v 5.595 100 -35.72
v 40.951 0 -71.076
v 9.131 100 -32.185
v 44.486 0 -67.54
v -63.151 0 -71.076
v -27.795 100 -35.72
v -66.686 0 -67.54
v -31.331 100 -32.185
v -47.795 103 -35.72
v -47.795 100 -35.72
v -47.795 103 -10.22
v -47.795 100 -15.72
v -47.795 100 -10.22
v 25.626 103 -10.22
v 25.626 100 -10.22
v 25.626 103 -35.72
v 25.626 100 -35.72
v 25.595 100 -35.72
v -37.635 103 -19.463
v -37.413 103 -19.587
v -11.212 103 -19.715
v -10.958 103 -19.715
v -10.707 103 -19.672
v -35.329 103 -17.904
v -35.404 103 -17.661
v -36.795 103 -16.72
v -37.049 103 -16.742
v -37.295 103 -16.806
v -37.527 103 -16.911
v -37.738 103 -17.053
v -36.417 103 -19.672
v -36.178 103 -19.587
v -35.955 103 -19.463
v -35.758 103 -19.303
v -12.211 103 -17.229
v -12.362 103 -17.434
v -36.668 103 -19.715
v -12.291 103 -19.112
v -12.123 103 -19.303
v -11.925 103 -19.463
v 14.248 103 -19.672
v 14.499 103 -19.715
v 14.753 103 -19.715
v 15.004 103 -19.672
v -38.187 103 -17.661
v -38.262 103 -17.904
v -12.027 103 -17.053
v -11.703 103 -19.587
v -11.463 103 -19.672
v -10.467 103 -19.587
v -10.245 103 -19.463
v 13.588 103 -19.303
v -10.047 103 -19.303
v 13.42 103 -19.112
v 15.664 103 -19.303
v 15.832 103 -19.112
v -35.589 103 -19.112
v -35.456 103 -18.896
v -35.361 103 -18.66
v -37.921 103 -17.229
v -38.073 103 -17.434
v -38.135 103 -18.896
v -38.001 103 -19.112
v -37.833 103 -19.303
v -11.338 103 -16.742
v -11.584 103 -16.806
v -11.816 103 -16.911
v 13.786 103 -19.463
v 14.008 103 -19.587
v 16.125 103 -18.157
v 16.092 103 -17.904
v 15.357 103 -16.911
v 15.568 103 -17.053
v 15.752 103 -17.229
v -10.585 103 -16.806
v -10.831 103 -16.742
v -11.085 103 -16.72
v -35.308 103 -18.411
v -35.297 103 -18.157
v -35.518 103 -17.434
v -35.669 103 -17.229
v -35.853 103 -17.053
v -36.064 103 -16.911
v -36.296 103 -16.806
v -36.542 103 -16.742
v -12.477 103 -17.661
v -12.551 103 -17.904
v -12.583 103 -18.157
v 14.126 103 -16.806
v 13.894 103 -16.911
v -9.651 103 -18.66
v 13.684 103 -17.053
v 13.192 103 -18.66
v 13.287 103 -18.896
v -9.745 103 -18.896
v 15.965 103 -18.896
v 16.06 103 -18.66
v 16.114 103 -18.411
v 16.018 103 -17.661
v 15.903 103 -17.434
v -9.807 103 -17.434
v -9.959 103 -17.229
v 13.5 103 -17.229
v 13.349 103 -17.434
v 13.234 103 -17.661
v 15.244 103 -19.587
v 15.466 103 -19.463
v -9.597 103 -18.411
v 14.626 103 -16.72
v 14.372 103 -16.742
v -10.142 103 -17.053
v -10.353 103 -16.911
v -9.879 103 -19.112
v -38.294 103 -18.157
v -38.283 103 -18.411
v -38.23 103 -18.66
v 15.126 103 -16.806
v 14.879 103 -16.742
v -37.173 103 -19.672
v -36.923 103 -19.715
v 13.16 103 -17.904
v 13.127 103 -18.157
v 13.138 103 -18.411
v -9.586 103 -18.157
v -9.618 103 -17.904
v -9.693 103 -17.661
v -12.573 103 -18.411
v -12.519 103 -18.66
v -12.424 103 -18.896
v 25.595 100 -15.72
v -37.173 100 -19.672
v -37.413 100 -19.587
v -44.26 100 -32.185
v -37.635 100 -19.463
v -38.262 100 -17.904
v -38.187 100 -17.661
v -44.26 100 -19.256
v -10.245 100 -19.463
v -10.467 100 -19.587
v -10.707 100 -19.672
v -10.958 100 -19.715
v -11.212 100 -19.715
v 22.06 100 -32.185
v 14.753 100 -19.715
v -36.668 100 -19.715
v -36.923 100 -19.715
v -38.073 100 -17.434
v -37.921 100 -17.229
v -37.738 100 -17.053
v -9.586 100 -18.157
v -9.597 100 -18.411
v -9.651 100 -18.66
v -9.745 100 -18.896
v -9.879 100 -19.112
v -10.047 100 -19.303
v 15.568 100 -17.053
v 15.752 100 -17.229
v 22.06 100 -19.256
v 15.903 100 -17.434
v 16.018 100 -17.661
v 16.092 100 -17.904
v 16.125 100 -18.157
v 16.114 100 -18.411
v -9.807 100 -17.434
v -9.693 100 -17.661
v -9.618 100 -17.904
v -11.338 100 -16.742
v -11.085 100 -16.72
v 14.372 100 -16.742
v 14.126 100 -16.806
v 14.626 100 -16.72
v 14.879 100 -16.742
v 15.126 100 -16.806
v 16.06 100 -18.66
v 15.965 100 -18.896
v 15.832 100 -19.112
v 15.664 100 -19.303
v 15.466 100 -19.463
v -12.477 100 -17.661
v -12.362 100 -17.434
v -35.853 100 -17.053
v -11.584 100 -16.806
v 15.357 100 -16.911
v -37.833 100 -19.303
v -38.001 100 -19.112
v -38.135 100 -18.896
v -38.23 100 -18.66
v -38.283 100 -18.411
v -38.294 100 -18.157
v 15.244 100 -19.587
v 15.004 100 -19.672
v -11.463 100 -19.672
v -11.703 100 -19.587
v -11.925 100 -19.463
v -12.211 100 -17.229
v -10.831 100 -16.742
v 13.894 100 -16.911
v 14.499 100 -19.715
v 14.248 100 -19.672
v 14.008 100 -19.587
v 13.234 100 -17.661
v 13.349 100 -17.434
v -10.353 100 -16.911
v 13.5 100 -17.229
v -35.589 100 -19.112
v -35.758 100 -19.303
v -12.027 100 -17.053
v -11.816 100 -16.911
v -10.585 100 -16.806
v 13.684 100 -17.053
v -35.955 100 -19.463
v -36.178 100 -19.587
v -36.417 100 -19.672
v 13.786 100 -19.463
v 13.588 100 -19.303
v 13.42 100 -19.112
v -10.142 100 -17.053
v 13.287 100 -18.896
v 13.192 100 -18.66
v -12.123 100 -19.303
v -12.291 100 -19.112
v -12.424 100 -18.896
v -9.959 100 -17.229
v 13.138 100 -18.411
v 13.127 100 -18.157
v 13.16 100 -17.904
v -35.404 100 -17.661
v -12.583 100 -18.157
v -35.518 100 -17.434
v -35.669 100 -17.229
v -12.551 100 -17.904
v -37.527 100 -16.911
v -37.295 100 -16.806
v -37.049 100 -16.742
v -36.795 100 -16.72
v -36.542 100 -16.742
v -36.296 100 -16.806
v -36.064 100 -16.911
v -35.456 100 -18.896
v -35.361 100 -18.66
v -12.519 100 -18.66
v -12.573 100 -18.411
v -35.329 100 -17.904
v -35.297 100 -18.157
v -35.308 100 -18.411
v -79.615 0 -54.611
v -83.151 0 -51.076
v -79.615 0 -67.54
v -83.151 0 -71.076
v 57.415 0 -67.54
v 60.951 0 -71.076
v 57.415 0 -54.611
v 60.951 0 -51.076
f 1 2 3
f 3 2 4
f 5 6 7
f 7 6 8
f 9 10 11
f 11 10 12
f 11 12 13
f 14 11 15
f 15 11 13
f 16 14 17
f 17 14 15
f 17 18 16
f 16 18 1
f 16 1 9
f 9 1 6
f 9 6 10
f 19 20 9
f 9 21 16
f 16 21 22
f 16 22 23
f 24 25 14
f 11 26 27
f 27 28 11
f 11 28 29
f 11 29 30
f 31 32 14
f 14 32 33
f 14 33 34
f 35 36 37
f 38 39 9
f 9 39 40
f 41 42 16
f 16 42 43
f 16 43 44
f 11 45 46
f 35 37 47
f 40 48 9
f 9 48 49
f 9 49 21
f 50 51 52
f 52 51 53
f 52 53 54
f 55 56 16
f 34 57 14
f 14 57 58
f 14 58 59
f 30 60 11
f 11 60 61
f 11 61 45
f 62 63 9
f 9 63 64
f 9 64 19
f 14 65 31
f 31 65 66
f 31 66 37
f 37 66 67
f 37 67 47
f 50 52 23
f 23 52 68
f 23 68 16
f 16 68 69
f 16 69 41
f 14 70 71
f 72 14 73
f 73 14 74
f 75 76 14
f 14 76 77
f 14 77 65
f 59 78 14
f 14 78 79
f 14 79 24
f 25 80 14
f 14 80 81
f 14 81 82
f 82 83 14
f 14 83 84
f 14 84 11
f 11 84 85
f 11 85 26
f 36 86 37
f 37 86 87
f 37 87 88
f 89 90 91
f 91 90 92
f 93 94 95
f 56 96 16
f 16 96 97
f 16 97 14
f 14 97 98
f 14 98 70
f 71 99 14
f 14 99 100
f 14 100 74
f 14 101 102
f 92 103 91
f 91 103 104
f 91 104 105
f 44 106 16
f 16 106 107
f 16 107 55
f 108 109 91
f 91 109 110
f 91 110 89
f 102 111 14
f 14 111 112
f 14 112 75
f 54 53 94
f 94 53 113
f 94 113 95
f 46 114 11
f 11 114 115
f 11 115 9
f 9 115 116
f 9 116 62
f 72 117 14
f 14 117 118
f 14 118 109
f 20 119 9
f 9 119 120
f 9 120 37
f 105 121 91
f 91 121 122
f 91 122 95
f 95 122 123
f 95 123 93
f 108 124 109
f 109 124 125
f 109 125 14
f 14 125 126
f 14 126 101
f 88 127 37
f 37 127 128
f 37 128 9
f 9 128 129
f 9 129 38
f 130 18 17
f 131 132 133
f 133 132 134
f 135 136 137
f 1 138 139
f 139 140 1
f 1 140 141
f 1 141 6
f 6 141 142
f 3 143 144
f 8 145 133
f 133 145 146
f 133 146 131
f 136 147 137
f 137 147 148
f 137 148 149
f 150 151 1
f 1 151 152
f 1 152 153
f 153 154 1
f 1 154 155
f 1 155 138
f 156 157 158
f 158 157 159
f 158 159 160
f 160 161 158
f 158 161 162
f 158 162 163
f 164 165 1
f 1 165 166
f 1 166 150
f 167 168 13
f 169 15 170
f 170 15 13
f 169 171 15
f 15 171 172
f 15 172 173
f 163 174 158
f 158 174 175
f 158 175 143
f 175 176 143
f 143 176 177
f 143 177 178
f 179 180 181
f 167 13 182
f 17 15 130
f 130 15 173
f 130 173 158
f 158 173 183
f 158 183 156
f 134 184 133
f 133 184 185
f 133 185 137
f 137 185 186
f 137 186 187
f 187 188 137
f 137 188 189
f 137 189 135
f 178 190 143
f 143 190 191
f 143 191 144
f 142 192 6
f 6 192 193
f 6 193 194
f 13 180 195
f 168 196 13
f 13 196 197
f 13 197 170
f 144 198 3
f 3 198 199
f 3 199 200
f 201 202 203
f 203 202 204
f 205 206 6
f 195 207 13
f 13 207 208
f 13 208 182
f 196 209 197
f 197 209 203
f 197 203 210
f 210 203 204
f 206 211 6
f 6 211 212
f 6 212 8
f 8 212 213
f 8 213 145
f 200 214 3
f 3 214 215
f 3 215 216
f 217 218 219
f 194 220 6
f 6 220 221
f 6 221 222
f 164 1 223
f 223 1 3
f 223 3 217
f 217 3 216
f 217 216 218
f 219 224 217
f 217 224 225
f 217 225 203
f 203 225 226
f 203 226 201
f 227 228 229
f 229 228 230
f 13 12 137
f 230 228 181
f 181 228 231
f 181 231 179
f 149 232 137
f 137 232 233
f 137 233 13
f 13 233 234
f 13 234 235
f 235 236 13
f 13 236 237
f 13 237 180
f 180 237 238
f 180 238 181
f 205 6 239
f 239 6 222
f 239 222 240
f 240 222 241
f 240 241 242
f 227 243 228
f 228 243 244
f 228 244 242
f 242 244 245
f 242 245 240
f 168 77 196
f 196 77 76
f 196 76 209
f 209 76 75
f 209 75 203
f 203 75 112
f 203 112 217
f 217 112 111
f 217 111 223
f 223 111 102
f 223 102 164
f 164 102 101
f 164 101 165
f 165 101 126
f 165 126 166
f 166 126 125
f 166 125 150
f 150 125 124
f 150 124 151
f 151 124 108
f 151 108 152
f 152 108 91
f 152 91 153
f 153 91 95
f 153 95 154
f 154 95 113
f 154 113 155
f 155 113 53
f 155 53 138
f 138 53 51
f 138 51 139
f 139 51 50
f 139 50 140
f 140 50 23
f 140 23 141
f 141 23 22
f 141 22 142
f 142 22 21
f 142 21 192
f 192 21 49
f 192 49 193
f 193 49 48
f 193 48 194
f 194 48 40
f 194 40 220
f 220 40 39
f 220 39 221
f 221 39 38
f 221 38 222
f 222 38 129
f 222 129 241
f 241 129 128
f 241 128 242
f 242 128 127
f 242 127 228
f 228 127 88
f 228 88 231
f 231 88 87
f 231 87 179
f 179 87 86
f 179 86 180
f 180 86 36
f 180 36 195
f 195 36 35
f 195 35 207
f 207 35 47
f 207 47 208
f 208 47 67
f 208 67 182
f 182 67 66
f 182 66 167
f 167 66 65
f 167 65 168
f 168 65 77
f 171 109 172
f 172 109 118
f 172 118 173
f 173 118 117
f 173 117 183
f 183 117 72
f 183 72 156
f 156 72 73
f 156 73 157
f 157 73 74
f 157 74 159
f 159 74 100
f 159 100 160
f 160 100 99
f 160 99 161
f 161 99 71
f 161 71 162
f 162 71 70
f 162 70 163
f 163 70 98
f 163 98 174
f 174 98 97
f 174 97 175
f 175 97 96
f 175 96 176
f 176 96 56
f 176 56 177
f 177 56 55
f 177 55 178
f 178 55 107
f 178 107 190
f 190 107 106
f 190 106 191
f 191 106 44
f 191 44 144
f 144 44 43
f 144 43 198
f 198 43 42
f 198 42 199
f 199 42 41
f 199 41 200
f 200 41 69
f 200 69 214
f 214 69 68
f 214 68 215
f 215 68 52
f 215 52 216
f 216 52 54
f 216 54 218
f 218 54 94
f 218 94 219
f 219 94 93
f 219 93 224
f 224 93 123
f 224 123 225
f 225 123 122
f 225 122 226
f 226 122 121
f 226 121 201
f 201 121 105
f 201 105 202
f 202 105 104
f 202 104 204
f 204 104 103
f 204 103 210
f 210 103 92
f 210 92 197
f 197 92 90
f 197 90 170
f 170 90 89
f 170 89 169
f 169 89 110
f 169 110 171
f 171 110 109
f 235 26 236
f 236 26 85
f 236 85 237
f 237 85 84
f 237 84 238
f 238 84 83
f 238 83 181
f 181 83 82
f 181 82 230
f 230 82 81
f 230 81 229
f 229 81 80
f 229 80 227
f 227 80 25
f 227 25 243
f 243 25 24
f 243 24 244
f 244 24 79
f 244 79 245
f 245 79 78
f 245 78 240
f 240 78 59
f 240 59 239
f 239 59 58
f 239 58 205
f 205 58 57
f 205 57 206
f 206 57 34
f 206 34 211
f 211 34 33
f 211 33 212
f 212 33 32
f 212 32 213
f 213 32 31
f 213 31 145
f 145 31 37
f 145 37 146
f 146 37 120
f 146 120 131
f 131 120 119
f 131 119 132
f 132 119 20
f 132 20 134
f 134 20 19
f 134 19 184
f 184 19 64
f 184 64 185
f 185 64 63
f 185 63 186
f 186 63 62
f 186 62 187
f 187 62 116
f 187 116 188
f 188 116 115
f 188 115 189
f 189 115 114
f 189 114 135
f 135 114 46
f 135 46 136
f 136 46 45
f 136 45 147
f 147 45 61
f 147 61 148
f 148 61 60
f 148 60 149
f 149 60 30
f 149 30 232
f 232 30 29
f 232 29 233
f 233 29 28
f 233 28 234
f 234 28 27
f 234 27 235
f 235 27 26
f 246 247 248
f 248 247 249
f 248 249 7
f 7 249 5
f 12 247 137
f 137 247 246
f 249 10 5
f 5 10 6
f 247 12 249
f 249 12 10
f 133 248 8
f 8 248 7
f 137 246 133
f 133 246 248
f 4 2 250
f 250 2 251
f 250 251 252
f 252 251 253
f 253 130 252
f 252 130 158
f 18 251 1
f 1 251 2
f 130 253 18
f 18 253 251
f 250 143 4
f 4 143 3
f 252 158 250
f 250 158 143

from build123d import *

# Parameters (mm, degrees)
SKETCH_8_W          = 73.42135624
SKETCH_8_H          = 25.5
EXTRUDE_3_DEPTH     = 3
SKETCH_9_R          = 1.5
CUT_EXTRUDE_2_DEPTH = 3


with BuildPart() as part:
    # 草图8 → 凸台-拉伸3 (new body)
    with BuildSketch(Plane(origin=(0, 100, 0), x_dir=(1, 0, 0), z_dir=(0, 1, 0))):
        with Locations((-11.084772404, 22.970398927)):
            Rectangle(SKETCH_8_W, SKETCH_8_H)
    extrude(amount=EXTRUDE_3_DEPTH)

    # 草图9 → 切除-拉伸2 (cut)
    with BuildSketch(Plane(origin=(0, 103, 0), x_dir=(1, 0, 0), z_dir=(0, 1, 0))):
        with Locations(Location((-36.795450524, 18.220398927, 0), (0, 0, 270))):
            Circle(SKETCH_9_R)
        with Locations(Location((14.625905716, 18.220398927, 0), (0, 0, 270))):
            Circle(SKETCH_9_R)
        with Locations(Location((-11.084772404, 18.220398927, 0), (0, 0, 270))):
            Circle(SKETCH_9_R)
    extrude(amount=-CUT_EXTRUDE_2_DEPTH, mode=Mode.SUBTRACT)

    # 草图10 → 放样2 section 0
    with BuildSketch(Plane(origin=(0, 100, 0), x_dir=(1, 0, 0), z_dir=(0, 1, 0))):
        with BuildLine():
            Line((-47.795450524, 35.720398927), (-27.795450524, 35.720398927))
            Line((-27.795450524, 35.720398927), (-47.795450524, 15.720398927))
            Line((-47.795450524, 15.720398927), (-47.795450524, 35.720398927))
        make_face()
    # 草图11 → 放样2 section 1
    with BuildSketch(Plane(origin=(0, 0, 0), x_dir=(1, 0, 0), z_dir=(0, 1, 0))):
        with BuildLine():
            Line((-83.150789583, 71.075737986), (-63.150789583, 71.075737986))
            Line((-63.150789583, 71.075737986), (-83.150789583, 51.075737986))
            Line((-83.150789583, 51.075737986), (-83.150789583, 71.075737986))
        make_face()
    loft_2 = loft()

    # 草图12 → 切除-放样1 section 0
    with BuildSketch(Plane(origin=(0, 100, 0), x_dir=(1, 0, 0), z_dir=(0, 1, 0))):
        with BuildLine():
            Line((-31.33098443, 32.184865021), (-44.259916618, 19.255932833))
            Line((-44.259916618, 19.255932833), (-44.259916618, 32.184865021))
            Line((-44.259916618, 32.184865021), (-31.33098443, 32.184865021))
        make_face()
    # 草图13 → 切除-放样1 section 1
    with BuildSketch(Plane(origin=(0, 0, 0), x_dir=(1, 0, 0), z_dir=(0, 1, 0))):
        with BuildLine():
            Line((-66.686323489, 67.54020408), (-79.615255677, 54.611271892))
            Line((-79.615255677, 54.611271892), (-79.615255677, 67.54020408))
            Line((-79.615255677, 67.54020408), (-66.686323489, 67.54020408))
        make_face()
    loft_1 = loft(mode=Mode.SUBTRACT)

    # 镜向3: 放样2 across plane
    add(loft_2.mirror(Plane(origin=(-11.1, 0, 0), x_dir=(0, 0, 1), z_dir=(1, 0, 0))))

    # 镜向4: 切除-放样1 across plane
    add(loft_1.mirror(Plane(origin=(-11.1, 0, 0), x_dir=(0, 0, 1), z_dir=(1, 0, 0))), mode=Mode.SUBTRACT)


solid = part.part
